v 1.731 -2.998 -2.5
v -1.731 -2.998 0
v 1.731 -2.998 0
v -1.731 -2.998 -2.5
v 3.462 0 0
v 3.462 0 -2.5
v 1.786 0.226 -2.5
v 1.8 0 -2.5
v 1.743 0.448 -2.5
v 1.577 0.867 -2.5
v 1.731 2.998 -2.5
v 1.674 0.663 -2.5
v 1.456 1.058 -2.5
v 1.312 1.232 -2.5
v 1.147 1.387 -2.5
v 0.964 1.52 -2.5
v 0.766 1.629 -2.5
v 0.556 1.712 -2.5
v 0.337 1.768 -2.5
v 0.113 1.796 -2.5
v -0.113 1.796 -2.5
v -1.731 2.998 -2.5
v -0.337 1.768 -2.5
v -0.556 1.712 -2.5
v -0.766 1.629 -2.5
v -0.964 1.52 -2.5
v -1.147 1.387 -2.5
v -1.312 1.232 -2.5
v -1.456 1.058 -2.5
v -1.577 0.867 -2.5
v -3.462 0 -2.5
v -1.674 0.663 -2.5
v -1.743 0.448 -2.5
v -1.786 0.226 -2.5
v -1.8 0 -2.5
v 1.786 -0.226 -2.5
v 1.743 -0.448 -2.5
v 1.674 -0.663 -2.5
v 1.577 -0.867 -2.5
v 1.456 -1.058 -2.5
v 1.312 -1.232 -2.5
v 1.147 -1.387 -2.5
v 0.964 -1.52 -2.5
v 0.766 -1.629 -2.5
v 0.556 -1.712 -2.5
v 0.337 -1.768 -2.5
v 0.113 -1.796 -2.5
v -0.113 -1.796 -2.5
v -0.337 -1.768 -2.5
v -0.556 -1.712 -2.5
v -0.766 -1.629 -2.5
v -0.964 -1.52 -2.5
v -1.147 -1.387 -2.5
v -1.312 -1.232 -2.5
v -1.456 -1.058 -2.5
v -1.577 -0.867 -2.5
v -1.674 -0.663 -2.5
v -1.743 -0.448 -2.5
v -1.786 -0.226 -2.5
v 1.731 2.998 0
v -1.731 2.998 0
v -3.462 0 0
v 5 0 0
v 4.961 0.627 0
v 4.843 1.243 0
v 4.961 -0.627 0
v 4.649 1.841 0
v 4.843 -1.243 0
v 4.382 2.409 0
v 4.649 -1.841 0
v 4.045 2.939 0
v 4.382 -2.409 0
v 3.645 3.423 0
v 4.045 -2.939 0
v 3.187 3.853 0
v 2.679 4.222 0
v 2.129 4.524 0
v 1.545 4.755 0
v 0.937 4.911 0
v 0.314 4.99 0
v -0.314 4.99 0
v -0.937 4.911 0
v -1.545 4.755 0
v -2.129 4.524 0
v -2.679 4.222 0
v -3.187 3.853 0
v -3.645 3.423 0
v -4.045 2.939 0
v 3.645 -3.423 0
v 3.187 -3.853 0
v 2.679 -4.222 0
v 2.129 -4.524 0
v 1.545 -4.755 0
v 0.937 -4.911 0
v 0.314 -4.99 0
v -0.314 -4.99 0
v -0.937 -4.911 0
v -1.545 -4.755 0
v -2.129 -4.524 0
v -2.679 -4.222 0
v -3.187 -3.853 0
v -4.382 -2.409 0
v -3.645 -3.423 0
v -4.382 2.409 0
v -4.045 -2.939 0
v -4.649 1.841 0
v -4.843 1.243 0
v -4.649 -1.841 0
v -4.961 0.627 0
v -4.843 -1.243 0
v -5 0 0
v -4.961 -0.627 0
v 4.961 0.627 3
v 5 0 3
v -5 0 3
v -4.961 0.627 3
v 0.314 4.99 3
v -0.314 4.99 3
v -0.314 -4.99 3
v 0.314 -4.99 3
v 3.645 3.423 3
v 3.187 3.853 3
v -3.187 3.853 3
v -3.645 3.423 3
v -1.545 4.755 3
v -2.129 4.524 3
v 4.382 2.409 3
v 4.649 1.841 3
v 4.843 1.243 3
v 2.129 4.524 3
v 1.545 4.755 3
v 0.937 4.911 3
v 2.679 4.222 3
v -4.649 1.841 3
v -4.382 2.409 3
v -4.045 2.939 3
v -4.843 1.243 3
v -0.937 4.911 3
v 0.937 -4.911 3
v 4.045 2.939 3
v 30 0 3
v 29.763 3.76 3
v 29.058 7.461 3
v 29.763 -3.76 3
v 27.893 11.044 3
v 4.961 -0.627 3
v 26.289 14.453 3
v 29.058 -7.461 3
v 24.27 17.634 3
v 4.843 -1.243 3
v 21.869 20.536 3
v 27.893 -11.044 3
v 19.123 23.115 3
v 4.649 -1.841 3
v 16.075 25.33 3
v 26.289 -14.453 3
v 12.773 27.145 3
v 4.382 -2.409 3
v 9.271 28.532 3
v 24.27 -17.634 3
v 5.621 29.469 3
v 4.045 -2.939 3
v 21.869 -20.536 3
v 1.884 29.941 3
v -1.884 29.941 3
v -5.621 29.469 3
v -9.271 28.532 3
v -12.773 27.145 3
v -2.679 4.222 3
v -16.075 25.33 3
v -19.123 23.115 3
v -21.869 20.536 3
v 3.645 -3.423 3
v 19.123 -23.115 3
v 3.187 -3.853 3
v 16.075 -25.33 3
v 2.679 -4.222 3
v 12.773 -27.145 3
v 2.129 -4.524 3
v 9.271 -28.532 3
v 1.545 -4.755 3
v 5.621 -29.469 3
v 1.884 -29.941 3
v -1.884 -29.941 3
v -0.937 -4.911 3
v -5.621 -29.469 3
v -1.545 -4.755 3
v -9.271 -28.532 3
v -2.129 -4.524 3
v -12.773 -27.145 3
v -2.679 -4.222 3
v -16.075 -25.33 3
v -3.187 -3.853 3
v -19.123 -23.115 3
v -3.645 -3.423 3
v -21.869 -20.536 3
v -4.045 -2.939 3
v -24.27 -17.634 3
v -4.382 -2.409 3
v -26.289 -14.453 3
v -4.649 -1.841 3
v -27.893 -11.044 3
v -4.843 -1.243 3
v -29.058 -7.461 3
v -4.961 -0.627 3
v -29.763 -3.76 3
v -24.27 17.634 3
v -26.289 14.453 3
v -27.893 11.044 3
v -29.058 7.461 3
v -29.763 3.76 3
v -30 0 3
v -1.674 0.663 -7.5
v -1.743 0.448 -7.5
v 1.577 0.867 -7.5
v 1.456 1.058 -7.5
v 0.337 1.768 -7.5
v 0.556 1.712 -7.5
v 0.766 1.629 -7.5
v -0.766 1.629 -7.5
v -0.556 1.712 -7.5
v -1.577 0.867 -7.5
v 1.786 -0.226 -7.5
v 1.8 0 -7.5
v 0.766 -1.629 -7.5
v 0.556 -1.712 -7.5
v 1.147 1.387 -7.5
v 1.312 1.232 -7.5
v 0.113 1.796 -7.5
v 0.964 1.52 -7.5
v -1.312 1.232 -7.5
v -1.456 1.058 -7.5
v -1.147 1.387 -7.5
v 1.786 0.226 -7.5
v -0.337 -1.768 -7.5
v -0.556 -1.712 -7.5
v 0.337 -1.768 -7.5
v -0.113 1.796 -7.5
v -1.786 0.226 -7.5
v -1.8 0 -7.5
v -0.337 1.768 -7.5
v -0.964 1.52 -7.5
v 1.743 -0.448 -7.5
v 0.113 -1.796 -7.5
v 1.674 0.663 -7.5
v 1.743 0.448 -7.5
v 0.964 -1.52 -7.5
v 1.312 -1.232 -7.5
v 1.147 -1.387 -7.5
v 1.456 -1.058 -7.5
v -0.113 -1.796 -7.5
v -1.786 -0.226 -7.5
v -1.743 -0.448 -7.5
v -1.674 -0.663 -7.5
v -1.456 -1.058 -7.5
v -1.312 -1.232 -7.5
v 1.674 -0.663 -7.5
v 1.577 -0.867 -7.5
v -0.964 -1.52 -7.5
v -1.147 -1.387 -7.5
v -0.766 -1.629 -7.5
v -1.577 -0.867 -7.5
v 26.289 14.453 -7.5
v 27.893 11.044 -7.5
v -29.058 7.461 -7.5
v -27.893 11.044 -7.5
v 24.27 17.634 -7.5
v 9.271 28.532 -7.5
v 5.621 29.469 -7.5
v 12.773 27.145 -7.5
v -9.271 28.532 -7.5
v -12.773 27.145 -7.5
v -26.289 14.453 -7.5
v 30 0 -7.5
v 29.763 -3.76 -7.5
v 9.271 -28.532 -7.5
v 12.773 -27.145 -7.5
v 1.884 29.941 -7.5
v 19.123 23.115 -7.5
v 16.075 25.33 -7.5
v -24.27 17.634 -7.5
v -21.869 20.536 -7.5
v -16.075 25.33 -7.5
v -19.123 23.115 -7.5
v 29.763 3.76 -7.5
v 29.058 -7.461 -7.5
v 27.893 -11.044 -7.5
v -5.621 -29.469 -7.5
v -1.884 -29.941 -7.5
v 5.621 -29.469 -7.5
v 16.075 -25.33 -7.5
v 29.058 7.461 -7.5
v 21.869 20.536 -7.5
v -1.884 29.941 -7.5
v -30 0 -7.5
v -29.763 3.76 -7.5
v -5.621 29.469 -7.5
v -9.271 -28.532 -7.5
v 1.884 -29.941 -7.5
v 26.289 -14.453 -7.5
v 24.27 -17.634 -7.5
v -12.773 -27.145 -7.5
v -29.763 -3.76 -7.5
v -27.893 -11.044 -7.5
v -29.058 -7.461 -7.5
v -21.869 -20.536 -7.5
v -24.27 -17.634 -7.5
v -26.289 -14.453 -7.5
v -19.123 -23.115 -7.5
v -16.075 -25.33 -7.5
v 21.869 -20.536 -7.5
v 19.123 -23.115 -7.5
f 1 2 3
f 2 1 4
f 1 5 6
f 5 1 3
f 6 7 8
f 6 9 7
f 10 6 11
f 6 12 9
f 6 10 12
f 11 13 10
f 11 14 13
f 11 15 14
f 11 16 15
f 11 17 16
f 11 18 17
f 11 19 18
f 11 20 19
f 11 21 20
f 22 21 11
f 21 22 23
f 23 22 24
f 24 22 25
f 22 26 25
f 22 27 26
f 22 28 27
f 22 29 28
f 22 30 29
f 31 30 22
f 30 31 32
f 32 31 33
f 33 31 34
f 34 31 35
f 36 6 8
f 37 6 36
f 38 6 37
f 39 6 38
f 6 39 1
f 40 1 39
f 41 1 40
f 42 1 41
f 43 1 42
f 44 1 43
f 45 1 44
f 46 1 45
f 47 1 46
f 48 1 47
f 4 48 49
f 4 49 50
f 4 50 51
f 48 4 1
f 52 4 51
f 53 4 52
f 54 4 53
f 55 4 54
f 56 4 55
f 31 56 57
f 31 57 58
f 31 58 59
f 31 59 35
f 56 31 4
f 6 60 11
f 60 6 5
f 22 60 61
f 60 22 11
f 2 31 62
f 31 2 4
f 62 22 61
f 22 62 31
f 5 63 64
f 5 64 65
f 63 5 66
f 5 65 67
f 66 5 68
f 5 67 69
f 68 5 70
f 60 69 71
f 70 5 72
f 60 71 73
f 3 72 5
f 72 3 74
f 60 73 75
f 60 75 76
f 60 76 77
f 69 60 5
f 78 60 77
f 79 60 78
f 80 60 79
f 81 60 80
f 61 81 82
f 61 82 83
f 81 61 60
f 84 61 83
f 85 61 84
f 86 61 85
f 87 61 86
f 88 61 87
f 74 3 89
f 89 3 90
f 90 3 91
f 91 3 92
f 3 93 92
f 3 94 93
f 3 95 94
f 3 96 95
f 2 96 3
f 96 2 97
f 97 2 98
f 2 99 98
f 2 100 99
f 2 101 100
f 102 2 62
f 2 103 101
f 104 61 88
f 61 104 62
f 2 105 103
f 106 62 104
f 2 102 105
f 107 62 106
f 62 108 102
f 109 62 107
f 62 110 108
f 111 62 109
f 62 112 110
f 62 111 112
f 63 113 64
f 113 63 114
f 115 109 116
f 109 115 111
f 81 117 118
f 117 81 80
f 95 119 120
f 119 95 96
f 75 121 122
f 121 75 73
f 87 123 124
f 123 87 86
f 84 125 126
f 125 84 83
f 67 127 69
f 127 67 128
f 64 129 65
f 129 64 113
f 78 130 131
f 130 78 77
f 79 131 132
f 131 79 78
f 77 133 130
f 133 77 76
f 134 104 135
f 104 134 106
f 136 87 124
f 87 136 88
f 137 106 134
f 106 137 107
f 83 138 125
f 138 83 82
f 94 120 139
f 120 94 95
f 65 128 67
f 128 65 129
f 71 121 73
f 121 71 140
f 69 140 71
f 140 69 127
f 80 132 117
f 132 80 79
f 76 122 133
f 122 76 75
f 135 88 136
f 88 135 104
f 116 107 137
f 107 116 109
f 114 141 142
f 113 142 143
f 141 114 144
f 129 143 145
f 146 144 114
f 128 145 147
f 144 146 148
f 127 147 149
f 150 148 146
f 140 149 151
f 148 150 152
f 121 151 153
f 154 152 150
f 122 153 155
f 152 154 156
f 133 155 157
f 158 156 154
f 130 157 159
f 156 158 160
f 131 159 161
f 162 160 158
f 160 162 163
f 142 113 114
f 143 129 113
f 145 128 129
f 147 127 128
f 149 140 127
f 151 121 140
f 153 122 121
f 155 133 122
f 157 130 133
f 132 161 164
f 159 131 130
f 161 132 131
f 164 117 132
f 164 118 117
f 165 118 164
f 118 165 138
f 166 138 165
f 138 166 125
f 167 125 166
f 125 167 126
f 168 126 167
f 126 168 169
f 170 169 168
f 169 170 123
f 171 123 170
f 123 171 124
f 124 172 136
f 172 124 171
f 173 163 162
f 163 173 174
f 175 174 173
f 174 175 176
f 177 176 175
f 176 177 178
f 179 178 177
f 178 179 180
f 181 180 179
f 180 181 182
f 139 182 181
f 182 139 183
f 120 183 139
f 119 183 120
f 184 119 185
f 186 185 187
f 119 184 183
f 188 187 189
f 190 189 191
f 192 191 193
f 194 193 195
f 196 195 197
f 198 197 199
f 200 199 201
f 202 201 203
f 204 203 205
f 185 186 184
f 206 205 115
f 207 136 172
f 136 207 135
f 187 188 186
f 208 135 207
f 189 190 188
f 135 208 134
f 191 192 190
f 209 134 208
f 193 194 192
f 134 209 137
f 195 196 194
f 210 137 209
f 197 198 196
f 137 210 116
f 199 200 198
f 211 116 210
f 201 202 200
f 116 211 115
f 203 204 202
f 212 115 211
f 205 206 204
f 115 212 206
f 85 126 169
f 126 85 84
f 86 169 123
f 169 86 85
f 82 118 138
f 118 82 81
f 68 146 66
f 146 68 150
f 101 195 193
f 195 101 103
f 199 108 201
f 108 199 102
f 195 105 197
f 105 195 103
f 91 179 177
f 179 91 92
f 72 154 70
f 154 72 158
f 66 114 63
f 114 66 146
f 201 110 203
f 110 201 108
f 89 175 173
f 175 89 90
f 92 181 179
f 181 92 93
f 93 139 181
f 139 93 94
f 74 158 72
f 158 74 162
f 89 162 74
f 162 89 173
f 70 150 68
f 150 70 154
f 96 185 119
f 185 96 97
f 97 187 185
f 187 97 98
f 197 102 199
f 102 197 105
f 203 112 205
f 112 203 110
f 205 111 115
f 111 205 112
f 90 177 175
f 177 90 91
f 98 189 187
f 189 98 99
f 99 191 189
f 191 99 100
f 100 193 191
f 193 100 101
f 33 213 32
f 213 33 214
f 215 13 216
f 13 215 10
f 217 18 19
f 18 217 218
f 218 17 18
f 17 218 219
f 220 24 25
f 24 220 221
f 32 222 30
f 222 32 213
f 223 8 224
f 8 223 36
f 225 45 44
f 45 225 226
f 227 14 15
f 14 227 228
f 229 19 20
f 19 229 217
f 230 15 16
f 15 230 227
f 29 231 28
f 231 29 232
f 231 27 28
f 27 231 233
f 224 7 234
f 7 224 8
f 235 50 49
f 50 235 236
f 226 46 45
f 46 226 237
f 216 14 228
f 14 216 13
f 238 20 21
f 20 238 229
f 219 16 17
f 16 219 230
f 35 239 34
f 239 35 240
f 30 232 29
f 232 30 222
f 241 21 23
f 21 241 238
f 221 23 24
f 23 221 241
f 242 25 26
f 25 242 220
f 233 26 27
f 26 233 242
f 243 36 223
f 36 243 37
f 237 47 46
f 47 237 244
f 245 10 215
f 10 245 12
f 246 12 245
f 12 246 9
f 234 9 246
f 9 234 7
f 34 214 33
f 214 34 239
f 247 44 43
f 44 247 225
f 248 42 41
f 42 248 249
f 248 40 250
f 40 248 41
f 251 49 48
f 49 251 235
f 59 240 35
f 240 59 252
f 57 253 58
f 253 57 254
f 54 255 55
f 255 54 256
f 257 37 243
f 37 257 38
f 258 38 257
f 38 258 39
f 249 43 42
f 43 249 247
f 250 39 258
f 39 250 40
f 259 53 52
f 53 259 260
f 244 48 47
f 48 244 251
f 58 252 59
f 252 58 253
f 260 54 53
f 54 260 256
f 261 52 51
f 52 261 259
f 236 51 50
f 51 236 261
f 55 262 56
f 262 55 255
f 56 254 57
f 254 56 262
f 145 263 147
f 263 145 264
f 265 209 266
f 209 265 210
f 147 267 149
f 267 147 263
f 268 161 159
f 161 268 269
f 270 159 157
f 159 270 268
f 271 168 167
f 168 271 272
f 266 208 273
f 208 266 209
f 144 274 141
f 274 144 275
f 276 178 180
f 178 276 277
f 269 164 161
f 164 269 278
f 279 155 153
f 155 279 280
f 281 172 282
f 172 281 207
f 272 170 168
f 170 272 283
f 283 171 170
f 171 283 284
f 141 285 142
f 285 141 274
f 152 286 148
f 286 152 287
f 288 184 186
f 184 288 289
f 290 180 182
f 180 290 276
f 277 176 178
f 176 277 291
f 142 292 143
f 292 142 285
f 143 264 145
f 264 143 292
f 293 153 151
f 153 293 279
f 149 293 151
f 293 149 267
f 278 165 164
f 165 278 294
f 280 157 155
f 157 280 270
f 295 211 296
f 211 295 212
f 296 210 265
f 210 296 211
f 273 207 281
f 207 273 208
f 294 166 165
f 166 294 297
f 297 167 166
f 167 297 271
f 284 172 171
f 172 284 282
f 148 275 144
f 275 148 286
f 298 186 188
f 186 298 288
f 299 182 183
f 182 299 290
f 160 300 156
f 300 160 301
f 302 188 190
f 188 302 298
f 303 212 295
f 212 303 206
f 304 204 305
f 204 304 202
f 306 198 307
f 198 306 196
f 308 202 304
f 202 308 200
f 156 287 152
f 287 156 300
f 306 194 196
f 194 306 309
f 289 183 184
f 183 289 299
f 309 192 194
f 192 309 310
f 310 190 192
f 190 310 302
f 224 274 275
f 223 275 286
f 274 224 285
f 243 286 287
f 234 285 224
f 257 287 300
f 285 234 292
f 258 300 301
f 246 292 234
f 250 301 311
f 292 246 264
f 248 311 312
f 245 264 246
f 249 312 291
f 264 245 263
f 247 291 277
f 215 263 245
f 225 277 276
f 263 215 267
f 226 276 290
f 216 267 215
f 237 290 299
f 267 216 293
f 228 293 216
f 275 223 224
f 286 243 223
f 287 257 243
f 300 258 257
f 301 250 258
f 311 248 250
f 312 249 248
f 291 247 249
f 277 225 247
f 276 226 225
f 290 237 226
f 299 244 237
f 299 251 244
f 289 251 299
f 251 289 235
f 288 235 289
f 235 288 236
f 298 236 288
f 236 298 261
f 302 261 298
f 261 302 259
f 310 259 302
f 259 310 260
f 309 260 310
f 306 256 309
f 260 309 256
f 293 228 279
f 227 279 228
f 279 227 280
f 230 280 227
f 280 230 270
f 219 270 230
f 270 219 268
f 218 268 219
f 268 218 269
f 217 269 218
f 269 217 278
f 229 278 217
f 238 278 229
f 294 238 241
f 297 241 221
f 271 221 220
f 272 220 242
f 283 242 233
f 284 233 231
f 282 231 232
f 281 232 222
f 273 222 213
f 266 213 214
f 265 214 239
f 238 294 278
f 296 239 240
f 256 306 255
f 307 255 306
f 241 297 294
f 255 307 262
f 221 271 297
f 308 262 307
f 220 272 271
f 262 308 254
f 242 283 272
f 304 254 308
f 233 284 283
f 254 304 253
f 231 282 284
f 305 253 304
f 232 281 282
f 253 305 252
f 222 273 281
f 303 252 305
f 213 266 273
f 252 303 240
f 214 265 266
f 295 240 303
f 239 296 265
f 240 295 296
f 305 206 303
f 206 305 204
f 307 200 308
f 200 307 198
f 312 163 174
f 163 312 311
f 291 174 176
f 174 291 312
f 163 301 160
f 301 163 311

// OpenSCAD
$fn = 50;

difference() {
	union() {
		translate(v = [0, 0, -7.5]) {
			cylinder(h = 10.5, r = 30.0);
		}
	}
	union() {
		translate(v = [0, 0, 0]) {
			rotate(a = [0, 0, 0]) {
				difference() {
					union() {
						translate(v = [0, 0, -2.5]) {
							linear_extrude(height = 2.5) {
								polygon(points = [[3.4619999999999997, 0.0], [1.7310000000000003, 2.9981799479017264], [-1.7309999999999992, 2.9981799479017264], [-3.4619999999999997, 4.2397272186481365e-16], [-1.7310000000000014, -2.998179947901726], [1.7309999999999977, -2.9981799479017277]]);
							}
						}
					}
					union();
				}
			}
		}
		#cylinder(h = 3, r = 5.0);
		#translate(v = [0, 0, -100.0]) {
			cylinder(h = 200, r = 1.8);
		}
	}
}
